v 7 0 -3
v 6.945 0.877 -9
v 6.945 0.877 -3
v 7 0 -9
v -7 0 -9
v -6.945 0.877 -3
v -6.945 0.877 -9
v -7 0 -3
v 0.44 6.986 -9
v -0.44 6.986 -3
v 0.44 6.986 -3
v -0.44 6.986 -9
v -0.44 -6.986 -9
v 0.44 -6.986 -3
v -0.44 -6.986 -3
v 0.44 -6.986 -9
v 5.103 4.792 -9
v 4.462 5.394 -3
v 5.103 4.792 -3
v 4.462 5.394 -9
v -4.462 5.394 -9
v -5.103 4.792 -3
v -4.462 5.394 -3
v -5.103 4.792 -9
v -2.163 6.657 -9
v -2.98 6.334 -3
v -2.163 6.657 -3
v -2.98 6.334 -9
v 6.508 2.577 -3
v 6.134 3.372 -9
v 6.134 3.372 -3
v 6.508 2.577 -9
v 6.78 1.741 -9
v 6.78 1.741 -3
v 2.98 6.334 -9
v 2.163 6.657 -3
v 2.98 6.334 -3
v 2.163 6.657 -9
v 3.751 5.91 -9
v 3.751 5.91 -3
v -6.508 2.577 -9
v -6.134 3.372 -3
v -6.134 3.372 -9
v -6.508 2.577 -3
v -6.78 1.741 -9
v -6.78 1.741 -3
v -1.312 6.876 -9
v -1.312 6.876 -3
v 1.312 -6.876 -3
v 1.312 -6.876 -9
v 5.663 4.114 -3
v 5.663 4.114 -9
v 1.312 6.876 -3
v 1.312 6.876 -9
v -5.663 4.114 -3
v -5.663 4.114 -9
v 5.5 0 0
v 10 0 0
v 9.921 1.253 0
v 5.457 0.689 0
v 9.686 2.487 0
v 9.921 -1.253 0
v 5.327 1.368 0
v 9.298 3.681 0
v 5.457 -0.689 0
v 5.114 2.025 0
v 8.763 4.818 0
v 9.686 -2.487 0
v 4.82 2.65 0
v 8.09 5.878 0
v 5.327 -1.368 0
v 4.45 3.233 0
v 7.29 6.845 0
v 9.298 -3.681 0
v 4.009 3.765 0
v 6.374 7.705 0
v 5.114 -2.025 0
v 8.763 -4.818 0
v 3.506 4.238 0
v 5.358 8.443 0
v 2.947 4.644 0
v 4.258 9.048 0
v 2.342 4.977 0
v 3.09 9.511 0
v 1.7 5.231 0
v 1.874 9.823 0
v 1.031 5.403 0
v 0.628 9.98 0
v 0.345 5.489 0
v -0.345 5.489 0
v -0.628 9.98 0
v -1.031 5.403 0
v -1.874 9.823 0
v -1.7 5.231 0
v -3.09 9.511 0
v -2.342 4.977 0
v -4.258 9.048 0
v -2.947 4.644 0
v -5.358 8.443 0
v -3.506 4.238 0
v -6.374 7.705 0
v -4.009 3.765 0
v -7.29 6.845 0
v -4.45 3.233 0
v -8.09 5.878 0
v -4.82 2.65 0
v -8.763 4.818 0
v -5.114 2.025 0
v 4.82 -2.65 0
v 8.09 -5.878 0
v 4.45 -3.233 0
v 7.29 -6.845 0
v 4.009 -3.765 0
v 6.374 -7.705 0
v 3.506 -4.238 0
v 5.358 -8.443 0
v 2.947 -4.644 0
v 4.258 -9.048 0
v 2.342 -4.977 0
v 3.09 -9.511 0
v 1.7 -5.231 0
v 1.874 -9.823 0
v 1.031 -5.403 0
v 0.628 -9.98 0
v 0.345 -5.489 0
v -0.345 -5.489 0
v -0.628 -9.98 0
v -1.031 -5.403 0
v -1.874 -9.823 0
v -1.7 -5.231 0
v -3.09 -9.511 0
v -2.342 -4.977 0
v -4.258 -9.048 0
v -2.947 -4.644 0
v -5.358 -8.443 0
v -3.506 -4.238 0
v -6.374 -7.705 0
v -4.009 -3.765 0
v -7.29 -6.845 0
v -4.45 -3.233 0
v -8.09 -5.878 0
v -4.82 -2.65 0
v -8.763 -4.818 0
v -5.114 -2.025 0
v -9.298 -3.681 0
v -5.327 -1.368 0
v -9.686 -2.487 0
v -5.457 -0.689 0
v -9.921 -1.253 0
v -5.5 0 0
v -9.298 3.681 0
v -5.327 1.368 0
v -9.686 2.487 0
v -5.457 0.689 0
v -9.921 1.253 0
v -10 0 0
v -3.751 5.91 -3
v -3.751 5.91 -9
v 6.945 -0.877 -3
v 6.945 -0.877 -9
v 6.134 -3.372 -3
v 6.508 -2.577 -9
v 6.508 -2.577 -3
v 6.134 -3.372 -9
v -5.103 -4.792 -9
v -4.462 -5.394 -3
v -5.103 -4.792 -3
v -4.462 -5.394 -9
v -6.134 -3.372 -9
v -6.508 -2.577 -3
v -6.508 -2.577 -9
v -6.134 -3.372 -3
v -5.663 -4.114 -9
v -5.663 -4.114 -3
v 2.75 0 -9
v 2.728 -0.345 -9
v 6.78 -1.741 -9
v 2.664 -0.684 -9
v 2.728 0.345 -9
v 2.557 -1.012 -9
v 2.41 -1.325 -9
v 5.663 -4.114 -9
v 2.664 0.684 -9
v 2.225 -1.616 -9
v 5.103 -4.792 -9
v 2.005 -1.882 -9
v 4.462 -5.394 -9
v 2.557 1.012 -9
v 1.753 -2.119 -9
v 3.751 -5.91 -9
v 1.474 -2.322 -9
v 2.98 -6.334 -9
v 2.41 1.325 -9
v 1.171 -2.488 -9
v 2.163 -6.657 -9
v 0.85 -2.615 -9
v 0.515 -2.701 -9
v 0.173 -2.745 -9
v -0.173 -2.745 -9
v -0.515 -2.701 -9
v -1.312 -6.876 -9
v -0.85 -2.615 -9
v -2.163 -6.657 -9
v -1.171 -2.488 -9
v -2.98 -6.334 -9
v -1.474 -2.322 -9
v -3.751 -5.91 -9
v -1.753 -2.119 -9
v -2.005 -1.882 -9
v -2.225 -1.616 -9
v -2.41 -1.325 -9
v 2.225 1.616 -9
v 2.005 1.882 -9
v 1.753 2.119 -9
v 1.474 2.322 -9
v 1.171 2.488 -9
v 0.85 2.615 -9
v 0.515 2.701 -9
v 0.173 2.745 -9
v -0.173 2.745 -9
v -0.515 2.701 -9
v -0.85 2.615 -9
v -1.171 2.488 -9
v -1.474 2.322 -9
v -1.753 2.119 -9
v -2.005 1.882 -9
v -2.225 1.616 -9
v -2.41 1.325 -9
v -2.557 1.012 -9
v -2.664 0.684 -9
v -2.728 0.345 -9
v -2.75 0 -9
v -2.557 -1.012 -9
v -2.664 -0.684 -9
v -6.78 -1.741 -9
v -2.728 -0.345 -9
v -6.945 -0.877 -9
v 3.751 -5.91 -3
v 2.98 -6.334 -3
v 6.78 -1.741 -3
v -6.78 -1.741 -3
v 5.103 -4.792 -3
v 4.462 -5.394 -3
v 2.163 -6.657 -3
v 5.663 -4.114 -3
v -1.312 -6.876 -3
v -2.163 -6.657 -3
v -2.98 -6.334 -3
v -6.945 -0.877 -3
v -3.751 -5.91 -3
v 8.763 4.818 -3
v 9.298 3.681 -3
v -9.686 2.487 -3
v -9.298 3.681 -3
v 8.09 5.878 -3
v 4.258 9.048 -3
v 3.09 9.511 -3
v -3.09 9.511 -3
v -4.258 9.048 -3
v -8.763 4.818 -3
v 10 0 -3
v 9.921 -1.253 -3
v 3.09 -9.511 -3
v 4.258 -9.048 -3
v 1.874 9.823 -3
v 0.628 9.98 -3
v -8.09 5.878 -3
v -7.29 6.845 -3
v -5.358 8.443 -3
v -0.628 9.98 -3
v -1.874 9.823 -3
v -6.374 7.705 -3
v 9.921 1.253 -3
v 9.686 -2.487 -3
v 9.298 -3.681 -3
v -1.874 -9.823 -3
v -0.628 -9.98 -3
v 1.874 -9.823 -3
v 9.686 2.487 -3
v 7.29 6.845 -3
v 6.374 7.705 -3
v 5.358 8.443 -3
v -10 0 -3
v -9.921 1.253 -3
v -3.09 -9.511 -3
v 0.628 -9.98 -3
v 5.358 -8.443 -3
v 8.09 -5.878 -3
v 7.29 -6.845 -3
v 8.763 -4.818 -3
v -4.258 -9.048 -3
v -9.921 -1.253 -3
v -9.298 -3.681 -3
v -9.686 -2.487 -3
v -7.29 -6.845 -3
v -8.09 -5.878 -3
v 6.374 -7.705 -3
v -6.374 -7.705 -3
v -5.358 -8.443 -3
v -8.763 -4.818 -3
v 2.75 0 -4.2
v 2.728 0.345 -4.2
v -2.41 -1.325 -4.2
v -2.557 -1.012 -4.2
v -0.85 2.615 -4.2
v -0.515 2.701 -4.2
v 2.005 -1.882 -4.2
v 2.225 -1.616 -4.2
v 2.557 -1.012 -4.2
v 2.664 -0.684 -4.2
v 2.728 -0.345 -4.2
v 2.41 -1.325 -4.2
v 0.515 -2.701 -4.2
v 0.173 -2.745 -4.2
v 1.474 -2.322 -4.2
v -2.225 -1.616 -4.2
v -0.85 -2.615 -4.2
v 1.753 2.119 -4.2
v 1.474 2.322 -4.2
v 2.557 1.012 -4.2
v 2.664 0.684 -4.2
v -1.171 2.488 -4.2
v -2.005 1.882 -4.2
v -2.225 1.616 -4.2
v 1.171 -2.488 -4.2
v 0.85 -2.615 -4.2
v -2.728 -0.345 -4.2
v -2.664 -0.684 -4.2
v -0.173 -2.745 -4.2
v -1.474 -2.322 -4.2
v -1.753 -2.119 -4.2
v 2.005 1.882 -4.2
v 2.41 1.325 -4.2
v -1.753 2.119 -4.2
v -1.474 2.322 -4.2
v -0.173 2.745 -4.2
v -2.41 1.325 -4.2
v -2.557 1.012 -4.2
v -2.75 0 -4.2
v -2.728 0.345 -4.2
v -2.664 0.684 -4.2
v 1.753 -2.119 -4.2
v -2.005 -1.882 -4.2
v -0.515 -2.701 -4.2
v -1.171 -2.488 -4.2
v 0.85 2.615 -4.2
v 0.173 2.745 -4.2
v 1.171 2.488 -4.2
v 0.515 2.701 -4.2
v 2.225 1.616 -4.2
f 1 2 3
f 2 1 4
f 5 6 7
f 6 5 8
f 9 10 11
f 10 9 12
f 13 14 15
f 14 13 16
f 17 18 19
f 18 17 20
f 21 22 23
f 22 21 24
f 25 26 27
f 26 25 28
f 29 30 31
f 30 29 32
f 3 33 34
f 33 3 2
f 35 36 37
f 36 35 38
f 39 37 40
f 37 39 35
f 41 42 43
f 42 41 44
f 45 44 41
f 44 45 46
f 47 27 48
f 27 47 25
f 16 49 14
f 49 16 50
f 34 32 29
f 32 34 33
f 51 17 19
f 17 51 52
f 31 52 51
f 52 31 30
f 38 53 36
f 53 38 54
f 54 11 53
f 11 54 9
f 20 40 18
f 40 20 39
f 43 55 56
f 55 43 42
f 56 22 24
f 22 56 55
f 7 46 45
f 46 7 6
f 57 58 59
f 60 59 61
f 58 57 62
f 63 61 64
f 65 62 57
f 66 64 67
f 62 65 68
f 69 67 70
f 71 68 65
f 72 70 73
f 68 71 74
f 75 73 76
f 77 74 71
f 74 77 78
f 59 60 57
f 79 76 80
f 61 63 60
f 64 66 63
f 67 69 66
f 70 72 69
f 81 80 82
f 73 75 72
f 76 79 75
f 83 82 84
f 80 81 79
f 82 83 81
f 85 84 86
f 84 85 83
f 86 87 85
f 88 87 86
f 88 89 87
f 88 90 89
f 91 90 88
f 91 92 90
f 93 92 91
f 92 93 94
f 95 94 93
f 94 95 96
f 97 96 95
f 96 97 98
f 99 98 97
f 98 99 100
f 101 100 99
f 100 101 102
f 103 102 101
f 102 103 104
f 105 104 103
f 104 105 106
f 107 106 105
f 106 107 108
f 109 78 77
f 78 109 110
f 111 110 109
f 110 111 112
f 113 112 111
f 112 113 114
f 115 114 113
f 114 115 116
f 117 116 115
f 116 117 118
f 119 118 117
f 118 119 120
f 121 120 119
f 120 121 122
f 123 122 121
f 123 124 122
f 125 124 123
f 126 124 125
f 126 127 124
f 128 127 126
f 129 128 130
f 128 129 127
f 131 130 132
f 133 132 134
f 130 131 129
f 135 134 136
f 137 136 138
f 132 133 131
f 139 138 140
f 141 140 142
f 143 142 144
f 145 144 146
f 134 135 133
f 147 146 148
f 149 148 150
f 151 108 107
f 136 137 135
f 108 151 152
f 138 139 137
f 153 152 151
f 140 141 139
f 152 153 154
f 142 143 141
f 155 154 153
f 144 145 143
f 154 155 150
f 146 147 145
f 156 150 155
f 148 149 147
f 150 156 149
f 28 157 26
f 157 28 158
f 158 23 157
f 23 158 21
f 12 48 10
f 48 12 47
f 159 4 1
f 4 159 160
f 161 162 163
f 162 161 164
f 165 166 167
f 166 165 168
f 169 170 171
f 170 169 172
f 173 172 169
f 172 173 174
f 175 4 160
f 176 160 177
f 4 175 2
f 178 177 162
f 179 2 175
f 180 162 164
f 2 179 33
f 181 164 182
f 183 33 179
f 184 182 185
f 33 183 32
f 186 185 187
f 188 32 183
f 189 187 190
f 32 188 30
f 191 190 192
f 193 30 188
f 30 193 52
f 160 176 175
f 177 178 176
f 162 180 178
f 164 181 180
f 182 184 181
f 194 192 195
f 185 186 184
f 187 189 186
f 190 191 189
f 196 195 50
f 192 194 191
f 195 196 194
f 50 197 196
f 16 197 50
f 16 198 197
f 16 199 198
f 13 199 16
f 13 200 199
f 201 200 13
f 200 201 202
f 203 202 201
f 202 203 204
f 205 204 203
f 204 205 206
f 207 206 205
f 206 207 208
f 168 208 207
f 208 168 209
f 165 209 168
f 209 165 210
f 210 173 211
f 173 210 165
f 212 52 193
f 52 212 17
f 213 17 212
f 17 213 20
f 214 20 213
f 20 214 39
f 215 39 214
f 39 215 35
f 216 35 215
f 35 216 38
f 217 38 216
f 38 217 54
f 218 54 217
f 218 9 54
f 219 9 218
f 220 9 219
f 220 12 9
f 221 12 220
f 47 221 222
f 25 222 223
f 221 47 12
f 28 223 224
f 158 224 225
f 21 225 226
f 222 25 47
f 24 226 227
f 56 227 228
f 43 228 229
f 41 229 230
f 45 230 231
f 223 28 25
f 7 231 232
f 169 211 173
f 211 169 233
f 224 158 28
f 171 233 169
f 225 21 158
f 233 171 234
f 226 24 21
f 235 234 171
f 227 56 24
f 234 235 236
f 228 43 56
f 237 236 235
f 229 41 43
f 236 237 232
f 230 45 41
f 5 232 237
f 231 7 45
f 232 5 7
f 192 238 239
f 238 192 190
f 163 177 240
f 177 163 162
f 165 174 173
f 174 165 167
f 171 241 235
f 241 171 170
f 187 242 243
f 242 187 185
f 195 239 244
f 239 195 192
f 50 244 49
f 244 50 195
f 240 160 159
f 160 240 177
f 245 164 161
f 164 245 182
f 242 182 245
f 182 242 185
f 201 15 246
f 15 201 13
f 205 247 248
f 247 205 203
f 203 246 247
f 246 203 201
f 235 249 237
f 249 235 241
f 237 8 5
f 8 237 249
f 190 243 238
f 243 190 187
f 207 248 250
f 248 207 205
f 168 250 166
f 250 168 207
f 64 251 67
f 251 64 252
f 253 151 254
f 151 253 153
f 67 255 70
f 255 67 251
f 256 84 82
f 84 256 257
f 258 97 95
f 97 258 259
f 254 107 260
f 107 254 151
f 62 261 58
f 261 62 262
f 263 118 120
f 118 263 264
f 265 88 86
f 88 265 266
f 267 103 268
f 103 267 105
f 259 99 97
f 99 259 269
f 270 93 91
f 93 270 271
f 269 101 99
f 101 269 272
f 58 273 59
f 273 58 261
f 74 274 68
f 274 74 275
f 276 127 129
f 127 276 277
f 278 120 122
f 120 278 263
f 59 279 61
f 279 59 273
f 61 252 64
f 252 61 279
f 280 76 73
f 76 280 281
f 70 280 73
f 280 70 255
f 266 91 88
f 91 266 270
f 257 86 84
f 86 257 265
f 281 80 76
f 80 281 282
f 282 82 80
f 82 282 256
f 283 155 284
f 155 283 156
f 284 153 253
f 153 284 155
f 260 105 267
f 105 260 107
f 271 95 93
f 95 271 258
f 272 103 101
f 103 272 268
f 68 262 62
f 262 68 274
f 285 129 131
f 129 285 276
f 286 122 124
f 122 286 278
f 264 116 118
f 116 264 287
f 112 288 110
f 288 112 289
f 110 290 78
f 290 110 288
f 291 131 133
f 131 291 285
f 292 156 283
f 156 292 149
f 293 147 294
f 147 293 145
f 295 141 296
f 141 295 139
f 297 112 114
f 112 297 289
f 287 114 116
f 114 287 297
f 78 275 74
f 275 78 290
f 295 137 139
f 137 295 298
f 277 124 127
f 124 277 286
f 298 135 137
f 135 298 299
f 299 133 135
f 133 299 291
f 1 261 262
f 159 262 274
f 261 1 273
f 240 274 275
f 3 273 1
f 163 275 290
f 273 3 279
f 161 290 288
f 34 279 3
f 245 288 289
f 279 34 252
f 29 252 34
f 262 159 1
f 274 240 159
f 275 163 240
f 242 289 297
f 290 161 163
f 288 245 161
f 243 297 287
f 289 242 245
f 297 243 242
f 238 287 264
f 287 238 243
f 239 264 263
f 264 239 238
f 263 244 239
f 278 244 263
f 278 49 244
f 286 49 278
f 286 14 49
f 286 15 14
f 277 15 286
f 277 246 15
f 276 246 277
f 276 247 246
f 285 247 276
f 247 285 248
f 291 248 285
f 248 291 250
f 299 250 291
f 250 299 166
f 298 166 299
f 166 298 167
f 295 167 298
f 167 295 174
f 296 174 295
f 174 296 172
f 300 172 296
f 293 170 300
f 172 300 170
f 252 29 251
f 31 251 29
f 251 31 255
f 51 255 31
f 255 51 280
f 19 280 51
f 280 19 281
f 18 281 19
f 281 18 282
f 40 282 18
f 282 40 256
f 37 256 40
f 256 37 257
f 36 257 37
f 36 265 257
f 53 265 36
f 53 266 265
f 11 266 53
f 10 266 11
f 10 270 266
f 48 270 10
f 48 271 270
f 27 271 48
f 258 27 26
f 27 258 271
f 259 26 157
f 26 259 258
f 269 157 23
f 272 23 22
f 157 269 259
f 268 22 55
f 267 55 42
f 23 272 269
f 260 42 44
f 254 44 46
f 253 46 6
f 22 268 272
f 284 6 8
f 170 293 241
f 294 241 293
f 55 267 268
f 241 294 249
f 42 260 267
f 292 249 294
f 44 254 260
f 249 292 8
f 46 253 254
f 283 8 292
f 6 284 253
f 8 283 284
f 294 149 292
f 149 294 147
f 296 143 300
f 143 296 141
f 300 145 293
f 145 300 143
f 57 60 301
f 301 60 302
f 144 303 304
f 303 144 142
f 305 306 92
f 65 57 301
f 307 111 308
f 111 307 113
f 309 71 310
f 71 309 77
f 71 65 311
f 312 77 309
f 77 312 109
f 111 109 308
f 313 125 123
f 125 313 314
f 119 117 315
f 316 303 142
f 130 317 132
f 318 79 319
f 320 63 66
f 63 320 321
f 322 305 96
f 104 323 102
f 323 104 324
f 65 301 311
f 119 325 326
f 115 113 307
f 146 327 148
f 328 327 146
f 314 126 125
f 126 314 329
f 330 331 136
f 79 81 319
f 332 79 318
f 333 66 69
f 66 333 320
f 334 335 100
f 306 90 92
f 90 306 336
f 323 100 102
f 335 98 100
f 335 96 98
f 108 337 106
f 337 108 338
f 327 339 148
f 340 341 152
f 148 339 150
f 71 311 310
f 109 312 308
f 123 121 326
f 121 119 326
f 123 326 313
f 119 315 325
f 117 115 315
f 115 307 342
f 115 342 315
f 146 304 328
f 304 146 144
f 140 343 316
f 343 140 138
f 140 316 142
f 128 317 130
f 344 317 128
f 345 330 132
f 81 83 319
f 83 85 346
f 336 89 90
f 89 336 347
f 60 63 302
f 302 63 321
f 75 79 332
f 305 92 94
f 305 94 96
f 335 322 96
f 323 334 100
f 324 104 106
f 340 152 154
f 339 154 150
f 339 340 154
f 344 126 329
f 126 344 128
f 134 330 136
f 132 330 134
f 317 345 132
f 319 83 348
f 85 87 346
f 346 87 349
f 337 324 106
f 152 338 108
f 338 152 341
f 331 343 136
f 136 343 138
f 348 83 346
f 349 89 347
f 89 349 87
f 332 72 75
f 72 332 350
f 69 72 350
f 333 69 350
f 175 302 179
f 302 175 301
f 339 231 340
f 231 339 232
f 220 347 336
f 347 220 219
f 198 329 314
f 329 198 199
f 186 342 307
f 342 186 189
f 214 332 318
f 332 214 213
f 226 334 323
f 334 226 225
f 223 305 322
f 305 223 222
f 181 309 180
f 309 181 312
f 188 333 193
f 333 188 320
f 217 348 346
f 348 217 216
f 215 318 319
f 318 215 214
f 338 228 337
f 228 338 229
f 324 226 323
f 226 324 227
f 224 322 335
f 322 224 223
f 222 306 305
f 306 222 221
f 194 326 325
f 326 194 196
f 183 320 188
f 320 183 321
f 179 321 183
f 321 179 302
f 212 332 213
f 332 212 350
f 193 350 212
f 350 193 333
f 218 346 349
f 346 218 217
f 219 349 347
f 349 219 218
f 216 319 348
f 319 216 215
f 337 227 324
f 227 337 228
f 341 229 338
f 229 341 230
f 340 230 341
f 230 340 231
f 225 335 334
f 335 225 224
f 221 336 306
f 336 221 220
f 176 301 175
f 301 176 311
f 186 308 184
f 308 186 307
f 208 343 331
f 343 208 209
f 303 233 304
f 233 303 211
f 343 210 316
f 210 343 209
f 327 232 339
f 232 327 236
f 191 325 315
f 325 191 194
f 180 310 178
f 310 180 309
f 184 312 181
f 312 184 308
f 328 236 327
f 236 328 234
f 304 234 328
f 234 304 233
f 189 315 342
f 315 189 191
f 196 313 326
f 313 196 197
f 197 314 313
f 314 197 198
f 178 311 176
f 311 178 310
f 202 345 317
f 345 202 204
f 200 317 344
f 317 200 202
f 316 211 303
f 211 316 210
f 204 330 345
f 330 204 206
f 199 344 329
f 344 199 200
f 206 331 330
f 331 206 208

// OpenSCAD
$fn = 50;


difference() {
	union() {
		translate(v = [0, 0, -9.0000000000]) {
			cylinder(h = 9, r = 7.0000000000);
		}
		translate(v = [0, 0, -3.0000000000]) {
			cylinder(h = 3, r = 10.0000000000);
		}
	}
	union() {
		translate(v = [0, 0, 0]) {
			rotate(a = [0, 0, 0]) {
				difference() {
					union() {
						#translate(v = [0, 0, -9.0000000000]) {
							cylinder(h = 9, r = 2.2500000000);
						}
						#translate(v = [0, 0, -4.2000000000]) {
							cylinder(h = 4.2000000000, r = 7.0000000000, r1 = 2.7500000000, r2 = 5.5000000000);
						}
						#translate(v = [0, 0, -9.0000000000]) {
							cylinder(h = 9, r = 2.7500000000);
						}
						#translate(v = [0, 0, -9.0000000000]) {
							cylinder(h = 9, r = 2.2500000000);
						}
					}
					union();
				}
			}
		}
	}
}
